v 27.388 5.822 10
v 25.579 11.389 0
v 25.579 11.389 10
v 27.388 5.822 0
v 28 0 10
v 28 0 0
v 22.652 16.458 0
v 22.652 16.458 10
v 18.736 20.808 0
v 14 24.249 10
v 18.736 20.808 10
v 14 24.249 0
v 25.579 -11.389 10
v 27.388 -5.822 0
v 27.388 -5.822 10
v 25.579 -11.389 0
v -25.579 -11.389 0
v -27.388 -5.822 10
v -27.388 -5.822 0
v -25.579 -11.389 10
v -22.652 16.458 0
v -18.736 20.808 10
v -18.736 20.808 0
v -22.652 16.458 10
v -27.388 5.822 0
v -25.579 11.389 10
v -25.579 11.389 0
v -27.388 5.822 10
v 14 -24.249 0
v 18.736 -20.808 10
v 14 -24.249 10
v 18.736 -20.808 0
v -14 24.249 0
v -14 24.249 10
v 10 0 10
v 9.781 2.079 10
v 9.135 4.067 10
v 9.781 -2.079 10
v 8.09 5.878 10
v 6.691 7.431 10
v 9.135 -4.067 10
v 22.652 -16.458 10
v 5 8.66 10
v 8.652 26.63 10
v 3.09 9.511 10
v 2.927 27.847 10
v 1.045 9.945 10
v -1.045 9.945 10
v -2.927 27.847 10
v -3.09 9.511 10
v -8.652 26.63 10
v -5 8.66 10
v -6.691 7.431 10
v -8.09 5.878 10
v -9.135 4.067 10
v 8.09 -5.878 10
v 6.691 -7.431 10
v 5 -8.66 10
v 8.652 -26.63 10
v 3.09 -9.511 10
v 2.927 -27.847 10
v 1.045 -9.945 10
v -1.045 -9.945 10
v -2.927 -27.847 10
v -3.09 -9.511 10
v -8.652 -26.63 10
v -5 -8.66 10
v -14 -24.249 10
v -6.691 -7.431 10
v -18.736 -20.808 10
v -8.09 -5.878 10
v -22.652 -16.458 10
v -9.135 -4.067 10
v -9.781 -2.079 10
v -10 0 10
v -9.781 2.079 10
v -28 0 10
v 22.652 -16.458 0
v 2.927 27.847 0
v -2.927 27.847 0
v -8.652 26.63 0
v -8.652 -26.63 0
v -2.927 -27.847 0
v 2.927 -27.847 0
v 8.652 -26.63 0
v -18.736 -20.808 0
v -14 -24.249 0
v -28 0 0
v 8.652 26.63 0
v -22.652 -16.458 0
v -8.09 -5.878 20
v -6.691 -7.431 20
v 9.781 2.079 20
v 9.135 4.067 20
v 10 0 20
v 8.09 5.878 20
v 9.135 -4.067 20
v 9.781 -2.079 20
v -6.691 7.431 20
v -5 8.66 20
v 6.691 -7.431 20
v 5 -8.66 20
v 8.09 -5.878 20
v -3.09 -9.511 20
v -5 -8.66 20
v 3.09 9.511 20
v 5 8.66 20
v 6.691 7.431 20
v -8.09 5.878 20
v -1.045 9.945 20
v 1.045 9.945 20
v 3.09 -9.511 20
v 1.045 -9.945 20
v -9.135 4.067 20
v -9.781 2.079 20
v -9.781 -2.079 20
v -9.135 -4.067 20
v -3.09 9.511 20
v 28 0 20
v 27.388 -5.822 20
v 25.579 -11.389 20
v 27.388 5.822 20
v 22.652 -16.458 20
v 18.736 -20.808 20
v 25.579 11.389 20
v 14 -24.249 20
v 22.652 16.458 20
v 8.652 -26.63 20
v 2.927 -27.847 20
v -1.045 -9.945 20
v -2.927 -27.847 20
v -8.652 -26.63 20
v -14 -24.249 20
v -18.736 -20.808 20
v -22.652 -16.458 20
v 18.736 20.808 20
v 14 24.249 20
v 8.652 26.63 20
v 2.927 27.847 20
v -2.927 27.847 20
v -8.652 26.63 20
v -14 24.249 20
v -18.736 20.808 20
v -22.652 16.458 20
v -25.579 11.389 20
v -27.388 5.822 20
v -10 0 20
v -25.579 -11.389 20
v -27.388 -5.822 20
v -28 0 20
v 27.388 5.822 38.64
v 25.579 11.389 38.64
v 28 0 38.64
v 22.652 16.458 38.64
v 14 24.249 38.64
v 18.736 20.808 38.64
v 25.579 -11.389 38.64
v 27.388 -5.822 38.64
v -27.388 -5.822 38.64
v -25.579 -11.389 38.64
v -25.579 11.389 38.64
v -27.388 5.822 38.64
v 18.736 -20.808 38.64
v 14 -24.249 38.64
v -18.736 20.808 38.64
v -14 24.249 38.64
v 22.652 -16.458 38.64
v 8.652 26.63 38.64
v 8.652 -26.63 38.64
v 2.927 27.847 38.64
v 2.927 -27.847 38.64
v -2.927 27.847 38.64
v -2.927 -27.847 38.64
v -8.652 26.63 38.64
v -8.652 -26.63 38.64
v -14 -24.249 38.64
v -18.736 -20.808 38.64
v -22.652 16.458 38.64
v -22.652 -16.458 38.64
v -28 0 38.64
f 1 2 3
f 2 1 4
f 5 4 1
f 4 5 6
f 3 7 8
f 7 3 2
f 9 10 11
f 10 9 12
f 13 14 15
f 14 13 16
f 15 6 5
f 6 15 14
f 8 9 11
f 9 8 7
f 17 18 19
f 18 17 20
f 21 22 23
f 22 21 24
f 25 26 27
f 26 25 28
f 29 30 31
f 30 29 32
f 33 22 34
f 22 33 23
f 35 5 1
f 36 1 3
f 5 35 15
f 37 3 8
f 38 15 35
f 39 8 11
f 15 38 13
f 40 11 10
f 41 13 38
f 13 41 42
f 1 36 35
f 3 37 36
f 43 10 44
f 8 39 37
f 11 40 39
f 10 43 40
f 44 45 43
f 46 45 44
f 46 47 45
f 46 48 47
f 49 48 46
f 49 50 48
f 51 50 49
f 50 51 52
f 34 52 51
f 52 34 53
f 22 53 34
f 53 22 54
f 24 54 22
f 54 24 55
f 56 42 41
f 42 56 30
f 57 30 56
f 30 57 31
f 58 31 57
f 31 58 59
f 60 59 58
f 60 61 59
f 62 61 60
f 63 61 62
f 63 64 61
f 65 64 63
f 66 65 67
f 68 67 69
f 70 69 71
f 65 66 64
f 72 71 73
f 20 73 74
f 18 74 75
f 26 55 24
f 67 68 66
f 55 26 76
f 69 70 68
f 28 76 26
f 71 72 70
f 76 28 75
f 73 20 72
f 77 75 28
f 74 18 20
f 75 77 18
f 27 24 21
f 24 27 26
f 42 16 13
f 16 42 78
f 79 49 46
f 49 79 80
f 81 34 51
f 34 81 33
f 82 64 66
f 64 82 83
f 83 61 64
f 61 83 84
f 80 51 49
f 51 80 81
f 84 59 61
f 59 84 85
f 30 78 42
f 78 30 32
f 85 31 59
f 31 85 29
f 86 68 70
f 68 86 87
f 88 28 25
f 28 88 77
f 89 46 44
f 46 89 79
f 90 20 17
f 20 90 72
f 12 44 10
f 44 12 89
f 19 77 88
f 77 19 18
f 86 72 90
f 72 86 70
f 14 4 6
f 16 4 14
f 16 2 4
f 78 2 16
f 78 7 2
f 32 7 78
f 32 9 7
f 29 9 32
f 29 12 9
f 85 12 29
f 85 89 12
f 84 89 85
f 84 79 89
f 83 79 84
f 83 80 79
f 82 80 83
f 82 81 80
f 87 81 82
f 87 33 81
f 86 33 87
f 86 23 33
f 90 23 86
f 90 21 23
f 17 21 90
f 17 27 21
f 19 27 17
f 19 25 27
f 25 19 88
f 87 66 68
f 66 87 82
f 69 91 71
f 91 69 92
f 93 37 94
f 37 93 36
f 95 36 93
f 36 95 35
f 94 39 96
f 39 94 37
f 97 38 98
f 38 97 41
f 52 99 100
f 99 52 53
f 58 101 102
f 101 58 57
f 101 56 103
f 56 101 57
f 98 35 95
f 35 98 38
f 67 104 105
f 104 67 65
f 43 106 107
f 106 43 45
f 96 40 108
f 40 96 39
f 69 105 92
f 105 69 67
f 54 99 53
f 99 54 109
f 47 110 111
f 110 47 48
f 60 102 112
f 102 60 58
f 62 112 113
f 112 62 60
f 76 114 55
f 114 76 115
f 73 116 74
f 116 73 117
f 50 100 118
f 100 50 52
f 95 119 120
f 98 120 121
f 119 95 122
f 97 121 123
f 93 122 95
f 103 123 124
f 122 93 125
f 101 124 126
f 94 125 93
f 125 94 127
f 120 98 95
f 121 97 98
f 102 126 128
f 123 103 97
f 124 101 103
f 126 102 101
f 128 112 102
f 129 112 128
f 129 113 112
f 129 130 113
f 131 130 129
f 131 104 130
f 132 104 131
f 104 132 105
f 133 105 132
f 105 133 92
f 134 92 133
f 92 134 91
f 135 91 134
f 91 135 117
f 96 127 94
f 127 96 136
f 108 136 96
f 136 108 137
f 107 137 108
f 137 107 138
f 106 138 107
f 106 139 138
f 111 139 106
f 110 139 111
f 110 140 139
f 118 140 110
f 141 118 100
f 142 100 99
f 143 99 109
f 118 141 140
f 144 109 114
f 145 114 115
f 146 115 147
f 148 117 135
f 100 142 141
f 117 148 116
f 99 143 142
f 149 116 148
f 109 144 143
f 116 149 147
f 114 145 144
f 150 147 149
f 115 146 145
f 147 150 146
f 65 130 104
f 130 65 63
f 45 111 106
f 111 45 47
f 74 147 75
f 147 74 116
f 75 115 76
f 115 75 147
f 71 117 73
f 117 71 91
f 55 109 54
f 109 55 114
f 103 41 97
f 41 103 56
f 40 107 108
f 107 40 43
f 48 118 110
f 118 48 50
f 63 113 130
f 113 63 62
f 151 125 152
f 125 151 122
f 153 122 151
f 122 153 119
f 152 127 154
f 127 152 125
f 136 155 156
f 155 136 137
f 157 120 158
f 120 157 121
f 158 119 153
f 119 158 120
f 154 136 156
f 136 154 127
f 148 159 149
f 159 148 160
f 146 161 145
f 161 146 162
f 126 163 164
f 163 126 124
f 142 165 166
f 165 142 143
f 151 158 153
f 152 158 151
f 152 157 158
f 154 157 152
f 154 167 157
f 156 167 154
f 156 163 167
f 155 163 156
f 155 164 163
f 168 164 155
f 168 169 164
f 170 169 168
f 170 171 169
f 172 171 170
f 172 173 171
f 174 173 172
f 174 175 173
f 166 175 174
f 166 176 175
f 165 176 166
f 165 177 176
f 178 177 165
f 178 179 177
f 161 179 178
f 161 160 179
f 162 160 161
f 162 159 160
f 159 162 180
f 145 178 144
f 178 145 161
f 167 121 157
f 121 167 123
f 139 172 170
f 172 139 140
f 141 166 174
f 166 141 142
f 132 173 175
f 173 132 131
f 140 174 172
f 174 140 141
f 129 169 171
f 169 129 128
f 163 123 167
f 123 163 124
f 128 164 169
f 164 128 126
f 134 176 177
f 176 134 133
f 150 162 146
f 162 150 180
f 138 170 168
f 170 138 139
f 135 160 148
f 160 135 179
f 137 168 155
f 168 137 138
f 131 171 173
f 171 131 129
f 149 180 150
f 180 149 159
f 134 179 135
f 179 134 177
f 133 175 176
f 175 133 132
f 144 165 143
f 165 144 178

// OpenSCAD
/* doodle-meta {"version":1,"parameters":{"total_height":{"label":"Total Height","description":"Overall height of the knob from base to top cap","unit":"mm","feature":"overall_height"},"base_radius":{"label":"Base Radius","description":"Radius of the bottom flange","unit":"mm","feature":"base_flange"},"neck_radius":{"label":"Neck Radius","description":"Radius of the middle neck section","unit":"mm","feature":"neck"},"cap_radius":{"label":"Cap Radius","description":"Radius of the top cap","unit":"mm","feature":"top_cap"},"base_height":{"label":"Base Height","description":"Height of the bottom flange section","unit":"mm","feature":"base_flange"},"neck_height":{"label":"Neck Height","description":"Height of the middle neck section","unit":"mm","feature":"neck"},"cap_height":{"label":"Cap Height","description":"Height of the top cap section","unit":"mm","feature":"top_cap"}},"features":{"overall_height":{"kind":"dimension","axis":"z","label":"Total Height"},"base_flange":{"kind":"region","label":"Base Flange","min":[0,0,0],"max":[{"parameter":"base_radius","scale":1,"offset":0},{"parameter":"base_radius","scale":1,"offset":0},{"parameter":"base_height","scale":1,"offset":0}]},"neck":{"kind":"region","label":"Neck","min":[0,0,{"parameter":"base_height","scale":1,"offset":0}],"max":[{"parameter":"neck_radius","scale":1,"offset":0},{"parameter":"neck_radius","scale":1,"offset":0},{"parameter":"base_height","scale":1,"offset":{"parameter":"neck_height","scale":1,"offset":0}}]},"top_cap":{"kind":"region","label":"Top Cap","min":[0,0,{"parameter":"base_height","scale":1,"offset":{"parameter":"neck_height","scale":1,"offset":0}}],"max":[{"parameter":"cap_radius","scale":1,"offset":0},{"parameter":"cap_radius","scale":1,"offset":0},{"parameter":"total_height","scale":1,"offset":0}]}}} */

// Parameters
total_height = 38.64;
base_radius = 28.0;
neck_radius = 10.0;
cap_radius = 28.0;
base_height = 10.0;
neck_height = 10.0;
cap_height = 18.64;

// Derived checks (not editable)
// total_height should equal base_height + neck_height + cap_height

module knob_body() {
    // Base Flange
    translate([0, 0, 0])
        cylinder(h = base_height, r = base_radius, center = false);
    
    // Neck
    translate([0, 0, base_height])
        cylinder(h = neck_height, r = neck_radius, center = false);
    
    // Top Cap
    translate([0, 0, base_height + neck_height])
        cylinder(h = cap_height, r = cap_radius, center = false);
}

// Main instantiation
knob_body();
